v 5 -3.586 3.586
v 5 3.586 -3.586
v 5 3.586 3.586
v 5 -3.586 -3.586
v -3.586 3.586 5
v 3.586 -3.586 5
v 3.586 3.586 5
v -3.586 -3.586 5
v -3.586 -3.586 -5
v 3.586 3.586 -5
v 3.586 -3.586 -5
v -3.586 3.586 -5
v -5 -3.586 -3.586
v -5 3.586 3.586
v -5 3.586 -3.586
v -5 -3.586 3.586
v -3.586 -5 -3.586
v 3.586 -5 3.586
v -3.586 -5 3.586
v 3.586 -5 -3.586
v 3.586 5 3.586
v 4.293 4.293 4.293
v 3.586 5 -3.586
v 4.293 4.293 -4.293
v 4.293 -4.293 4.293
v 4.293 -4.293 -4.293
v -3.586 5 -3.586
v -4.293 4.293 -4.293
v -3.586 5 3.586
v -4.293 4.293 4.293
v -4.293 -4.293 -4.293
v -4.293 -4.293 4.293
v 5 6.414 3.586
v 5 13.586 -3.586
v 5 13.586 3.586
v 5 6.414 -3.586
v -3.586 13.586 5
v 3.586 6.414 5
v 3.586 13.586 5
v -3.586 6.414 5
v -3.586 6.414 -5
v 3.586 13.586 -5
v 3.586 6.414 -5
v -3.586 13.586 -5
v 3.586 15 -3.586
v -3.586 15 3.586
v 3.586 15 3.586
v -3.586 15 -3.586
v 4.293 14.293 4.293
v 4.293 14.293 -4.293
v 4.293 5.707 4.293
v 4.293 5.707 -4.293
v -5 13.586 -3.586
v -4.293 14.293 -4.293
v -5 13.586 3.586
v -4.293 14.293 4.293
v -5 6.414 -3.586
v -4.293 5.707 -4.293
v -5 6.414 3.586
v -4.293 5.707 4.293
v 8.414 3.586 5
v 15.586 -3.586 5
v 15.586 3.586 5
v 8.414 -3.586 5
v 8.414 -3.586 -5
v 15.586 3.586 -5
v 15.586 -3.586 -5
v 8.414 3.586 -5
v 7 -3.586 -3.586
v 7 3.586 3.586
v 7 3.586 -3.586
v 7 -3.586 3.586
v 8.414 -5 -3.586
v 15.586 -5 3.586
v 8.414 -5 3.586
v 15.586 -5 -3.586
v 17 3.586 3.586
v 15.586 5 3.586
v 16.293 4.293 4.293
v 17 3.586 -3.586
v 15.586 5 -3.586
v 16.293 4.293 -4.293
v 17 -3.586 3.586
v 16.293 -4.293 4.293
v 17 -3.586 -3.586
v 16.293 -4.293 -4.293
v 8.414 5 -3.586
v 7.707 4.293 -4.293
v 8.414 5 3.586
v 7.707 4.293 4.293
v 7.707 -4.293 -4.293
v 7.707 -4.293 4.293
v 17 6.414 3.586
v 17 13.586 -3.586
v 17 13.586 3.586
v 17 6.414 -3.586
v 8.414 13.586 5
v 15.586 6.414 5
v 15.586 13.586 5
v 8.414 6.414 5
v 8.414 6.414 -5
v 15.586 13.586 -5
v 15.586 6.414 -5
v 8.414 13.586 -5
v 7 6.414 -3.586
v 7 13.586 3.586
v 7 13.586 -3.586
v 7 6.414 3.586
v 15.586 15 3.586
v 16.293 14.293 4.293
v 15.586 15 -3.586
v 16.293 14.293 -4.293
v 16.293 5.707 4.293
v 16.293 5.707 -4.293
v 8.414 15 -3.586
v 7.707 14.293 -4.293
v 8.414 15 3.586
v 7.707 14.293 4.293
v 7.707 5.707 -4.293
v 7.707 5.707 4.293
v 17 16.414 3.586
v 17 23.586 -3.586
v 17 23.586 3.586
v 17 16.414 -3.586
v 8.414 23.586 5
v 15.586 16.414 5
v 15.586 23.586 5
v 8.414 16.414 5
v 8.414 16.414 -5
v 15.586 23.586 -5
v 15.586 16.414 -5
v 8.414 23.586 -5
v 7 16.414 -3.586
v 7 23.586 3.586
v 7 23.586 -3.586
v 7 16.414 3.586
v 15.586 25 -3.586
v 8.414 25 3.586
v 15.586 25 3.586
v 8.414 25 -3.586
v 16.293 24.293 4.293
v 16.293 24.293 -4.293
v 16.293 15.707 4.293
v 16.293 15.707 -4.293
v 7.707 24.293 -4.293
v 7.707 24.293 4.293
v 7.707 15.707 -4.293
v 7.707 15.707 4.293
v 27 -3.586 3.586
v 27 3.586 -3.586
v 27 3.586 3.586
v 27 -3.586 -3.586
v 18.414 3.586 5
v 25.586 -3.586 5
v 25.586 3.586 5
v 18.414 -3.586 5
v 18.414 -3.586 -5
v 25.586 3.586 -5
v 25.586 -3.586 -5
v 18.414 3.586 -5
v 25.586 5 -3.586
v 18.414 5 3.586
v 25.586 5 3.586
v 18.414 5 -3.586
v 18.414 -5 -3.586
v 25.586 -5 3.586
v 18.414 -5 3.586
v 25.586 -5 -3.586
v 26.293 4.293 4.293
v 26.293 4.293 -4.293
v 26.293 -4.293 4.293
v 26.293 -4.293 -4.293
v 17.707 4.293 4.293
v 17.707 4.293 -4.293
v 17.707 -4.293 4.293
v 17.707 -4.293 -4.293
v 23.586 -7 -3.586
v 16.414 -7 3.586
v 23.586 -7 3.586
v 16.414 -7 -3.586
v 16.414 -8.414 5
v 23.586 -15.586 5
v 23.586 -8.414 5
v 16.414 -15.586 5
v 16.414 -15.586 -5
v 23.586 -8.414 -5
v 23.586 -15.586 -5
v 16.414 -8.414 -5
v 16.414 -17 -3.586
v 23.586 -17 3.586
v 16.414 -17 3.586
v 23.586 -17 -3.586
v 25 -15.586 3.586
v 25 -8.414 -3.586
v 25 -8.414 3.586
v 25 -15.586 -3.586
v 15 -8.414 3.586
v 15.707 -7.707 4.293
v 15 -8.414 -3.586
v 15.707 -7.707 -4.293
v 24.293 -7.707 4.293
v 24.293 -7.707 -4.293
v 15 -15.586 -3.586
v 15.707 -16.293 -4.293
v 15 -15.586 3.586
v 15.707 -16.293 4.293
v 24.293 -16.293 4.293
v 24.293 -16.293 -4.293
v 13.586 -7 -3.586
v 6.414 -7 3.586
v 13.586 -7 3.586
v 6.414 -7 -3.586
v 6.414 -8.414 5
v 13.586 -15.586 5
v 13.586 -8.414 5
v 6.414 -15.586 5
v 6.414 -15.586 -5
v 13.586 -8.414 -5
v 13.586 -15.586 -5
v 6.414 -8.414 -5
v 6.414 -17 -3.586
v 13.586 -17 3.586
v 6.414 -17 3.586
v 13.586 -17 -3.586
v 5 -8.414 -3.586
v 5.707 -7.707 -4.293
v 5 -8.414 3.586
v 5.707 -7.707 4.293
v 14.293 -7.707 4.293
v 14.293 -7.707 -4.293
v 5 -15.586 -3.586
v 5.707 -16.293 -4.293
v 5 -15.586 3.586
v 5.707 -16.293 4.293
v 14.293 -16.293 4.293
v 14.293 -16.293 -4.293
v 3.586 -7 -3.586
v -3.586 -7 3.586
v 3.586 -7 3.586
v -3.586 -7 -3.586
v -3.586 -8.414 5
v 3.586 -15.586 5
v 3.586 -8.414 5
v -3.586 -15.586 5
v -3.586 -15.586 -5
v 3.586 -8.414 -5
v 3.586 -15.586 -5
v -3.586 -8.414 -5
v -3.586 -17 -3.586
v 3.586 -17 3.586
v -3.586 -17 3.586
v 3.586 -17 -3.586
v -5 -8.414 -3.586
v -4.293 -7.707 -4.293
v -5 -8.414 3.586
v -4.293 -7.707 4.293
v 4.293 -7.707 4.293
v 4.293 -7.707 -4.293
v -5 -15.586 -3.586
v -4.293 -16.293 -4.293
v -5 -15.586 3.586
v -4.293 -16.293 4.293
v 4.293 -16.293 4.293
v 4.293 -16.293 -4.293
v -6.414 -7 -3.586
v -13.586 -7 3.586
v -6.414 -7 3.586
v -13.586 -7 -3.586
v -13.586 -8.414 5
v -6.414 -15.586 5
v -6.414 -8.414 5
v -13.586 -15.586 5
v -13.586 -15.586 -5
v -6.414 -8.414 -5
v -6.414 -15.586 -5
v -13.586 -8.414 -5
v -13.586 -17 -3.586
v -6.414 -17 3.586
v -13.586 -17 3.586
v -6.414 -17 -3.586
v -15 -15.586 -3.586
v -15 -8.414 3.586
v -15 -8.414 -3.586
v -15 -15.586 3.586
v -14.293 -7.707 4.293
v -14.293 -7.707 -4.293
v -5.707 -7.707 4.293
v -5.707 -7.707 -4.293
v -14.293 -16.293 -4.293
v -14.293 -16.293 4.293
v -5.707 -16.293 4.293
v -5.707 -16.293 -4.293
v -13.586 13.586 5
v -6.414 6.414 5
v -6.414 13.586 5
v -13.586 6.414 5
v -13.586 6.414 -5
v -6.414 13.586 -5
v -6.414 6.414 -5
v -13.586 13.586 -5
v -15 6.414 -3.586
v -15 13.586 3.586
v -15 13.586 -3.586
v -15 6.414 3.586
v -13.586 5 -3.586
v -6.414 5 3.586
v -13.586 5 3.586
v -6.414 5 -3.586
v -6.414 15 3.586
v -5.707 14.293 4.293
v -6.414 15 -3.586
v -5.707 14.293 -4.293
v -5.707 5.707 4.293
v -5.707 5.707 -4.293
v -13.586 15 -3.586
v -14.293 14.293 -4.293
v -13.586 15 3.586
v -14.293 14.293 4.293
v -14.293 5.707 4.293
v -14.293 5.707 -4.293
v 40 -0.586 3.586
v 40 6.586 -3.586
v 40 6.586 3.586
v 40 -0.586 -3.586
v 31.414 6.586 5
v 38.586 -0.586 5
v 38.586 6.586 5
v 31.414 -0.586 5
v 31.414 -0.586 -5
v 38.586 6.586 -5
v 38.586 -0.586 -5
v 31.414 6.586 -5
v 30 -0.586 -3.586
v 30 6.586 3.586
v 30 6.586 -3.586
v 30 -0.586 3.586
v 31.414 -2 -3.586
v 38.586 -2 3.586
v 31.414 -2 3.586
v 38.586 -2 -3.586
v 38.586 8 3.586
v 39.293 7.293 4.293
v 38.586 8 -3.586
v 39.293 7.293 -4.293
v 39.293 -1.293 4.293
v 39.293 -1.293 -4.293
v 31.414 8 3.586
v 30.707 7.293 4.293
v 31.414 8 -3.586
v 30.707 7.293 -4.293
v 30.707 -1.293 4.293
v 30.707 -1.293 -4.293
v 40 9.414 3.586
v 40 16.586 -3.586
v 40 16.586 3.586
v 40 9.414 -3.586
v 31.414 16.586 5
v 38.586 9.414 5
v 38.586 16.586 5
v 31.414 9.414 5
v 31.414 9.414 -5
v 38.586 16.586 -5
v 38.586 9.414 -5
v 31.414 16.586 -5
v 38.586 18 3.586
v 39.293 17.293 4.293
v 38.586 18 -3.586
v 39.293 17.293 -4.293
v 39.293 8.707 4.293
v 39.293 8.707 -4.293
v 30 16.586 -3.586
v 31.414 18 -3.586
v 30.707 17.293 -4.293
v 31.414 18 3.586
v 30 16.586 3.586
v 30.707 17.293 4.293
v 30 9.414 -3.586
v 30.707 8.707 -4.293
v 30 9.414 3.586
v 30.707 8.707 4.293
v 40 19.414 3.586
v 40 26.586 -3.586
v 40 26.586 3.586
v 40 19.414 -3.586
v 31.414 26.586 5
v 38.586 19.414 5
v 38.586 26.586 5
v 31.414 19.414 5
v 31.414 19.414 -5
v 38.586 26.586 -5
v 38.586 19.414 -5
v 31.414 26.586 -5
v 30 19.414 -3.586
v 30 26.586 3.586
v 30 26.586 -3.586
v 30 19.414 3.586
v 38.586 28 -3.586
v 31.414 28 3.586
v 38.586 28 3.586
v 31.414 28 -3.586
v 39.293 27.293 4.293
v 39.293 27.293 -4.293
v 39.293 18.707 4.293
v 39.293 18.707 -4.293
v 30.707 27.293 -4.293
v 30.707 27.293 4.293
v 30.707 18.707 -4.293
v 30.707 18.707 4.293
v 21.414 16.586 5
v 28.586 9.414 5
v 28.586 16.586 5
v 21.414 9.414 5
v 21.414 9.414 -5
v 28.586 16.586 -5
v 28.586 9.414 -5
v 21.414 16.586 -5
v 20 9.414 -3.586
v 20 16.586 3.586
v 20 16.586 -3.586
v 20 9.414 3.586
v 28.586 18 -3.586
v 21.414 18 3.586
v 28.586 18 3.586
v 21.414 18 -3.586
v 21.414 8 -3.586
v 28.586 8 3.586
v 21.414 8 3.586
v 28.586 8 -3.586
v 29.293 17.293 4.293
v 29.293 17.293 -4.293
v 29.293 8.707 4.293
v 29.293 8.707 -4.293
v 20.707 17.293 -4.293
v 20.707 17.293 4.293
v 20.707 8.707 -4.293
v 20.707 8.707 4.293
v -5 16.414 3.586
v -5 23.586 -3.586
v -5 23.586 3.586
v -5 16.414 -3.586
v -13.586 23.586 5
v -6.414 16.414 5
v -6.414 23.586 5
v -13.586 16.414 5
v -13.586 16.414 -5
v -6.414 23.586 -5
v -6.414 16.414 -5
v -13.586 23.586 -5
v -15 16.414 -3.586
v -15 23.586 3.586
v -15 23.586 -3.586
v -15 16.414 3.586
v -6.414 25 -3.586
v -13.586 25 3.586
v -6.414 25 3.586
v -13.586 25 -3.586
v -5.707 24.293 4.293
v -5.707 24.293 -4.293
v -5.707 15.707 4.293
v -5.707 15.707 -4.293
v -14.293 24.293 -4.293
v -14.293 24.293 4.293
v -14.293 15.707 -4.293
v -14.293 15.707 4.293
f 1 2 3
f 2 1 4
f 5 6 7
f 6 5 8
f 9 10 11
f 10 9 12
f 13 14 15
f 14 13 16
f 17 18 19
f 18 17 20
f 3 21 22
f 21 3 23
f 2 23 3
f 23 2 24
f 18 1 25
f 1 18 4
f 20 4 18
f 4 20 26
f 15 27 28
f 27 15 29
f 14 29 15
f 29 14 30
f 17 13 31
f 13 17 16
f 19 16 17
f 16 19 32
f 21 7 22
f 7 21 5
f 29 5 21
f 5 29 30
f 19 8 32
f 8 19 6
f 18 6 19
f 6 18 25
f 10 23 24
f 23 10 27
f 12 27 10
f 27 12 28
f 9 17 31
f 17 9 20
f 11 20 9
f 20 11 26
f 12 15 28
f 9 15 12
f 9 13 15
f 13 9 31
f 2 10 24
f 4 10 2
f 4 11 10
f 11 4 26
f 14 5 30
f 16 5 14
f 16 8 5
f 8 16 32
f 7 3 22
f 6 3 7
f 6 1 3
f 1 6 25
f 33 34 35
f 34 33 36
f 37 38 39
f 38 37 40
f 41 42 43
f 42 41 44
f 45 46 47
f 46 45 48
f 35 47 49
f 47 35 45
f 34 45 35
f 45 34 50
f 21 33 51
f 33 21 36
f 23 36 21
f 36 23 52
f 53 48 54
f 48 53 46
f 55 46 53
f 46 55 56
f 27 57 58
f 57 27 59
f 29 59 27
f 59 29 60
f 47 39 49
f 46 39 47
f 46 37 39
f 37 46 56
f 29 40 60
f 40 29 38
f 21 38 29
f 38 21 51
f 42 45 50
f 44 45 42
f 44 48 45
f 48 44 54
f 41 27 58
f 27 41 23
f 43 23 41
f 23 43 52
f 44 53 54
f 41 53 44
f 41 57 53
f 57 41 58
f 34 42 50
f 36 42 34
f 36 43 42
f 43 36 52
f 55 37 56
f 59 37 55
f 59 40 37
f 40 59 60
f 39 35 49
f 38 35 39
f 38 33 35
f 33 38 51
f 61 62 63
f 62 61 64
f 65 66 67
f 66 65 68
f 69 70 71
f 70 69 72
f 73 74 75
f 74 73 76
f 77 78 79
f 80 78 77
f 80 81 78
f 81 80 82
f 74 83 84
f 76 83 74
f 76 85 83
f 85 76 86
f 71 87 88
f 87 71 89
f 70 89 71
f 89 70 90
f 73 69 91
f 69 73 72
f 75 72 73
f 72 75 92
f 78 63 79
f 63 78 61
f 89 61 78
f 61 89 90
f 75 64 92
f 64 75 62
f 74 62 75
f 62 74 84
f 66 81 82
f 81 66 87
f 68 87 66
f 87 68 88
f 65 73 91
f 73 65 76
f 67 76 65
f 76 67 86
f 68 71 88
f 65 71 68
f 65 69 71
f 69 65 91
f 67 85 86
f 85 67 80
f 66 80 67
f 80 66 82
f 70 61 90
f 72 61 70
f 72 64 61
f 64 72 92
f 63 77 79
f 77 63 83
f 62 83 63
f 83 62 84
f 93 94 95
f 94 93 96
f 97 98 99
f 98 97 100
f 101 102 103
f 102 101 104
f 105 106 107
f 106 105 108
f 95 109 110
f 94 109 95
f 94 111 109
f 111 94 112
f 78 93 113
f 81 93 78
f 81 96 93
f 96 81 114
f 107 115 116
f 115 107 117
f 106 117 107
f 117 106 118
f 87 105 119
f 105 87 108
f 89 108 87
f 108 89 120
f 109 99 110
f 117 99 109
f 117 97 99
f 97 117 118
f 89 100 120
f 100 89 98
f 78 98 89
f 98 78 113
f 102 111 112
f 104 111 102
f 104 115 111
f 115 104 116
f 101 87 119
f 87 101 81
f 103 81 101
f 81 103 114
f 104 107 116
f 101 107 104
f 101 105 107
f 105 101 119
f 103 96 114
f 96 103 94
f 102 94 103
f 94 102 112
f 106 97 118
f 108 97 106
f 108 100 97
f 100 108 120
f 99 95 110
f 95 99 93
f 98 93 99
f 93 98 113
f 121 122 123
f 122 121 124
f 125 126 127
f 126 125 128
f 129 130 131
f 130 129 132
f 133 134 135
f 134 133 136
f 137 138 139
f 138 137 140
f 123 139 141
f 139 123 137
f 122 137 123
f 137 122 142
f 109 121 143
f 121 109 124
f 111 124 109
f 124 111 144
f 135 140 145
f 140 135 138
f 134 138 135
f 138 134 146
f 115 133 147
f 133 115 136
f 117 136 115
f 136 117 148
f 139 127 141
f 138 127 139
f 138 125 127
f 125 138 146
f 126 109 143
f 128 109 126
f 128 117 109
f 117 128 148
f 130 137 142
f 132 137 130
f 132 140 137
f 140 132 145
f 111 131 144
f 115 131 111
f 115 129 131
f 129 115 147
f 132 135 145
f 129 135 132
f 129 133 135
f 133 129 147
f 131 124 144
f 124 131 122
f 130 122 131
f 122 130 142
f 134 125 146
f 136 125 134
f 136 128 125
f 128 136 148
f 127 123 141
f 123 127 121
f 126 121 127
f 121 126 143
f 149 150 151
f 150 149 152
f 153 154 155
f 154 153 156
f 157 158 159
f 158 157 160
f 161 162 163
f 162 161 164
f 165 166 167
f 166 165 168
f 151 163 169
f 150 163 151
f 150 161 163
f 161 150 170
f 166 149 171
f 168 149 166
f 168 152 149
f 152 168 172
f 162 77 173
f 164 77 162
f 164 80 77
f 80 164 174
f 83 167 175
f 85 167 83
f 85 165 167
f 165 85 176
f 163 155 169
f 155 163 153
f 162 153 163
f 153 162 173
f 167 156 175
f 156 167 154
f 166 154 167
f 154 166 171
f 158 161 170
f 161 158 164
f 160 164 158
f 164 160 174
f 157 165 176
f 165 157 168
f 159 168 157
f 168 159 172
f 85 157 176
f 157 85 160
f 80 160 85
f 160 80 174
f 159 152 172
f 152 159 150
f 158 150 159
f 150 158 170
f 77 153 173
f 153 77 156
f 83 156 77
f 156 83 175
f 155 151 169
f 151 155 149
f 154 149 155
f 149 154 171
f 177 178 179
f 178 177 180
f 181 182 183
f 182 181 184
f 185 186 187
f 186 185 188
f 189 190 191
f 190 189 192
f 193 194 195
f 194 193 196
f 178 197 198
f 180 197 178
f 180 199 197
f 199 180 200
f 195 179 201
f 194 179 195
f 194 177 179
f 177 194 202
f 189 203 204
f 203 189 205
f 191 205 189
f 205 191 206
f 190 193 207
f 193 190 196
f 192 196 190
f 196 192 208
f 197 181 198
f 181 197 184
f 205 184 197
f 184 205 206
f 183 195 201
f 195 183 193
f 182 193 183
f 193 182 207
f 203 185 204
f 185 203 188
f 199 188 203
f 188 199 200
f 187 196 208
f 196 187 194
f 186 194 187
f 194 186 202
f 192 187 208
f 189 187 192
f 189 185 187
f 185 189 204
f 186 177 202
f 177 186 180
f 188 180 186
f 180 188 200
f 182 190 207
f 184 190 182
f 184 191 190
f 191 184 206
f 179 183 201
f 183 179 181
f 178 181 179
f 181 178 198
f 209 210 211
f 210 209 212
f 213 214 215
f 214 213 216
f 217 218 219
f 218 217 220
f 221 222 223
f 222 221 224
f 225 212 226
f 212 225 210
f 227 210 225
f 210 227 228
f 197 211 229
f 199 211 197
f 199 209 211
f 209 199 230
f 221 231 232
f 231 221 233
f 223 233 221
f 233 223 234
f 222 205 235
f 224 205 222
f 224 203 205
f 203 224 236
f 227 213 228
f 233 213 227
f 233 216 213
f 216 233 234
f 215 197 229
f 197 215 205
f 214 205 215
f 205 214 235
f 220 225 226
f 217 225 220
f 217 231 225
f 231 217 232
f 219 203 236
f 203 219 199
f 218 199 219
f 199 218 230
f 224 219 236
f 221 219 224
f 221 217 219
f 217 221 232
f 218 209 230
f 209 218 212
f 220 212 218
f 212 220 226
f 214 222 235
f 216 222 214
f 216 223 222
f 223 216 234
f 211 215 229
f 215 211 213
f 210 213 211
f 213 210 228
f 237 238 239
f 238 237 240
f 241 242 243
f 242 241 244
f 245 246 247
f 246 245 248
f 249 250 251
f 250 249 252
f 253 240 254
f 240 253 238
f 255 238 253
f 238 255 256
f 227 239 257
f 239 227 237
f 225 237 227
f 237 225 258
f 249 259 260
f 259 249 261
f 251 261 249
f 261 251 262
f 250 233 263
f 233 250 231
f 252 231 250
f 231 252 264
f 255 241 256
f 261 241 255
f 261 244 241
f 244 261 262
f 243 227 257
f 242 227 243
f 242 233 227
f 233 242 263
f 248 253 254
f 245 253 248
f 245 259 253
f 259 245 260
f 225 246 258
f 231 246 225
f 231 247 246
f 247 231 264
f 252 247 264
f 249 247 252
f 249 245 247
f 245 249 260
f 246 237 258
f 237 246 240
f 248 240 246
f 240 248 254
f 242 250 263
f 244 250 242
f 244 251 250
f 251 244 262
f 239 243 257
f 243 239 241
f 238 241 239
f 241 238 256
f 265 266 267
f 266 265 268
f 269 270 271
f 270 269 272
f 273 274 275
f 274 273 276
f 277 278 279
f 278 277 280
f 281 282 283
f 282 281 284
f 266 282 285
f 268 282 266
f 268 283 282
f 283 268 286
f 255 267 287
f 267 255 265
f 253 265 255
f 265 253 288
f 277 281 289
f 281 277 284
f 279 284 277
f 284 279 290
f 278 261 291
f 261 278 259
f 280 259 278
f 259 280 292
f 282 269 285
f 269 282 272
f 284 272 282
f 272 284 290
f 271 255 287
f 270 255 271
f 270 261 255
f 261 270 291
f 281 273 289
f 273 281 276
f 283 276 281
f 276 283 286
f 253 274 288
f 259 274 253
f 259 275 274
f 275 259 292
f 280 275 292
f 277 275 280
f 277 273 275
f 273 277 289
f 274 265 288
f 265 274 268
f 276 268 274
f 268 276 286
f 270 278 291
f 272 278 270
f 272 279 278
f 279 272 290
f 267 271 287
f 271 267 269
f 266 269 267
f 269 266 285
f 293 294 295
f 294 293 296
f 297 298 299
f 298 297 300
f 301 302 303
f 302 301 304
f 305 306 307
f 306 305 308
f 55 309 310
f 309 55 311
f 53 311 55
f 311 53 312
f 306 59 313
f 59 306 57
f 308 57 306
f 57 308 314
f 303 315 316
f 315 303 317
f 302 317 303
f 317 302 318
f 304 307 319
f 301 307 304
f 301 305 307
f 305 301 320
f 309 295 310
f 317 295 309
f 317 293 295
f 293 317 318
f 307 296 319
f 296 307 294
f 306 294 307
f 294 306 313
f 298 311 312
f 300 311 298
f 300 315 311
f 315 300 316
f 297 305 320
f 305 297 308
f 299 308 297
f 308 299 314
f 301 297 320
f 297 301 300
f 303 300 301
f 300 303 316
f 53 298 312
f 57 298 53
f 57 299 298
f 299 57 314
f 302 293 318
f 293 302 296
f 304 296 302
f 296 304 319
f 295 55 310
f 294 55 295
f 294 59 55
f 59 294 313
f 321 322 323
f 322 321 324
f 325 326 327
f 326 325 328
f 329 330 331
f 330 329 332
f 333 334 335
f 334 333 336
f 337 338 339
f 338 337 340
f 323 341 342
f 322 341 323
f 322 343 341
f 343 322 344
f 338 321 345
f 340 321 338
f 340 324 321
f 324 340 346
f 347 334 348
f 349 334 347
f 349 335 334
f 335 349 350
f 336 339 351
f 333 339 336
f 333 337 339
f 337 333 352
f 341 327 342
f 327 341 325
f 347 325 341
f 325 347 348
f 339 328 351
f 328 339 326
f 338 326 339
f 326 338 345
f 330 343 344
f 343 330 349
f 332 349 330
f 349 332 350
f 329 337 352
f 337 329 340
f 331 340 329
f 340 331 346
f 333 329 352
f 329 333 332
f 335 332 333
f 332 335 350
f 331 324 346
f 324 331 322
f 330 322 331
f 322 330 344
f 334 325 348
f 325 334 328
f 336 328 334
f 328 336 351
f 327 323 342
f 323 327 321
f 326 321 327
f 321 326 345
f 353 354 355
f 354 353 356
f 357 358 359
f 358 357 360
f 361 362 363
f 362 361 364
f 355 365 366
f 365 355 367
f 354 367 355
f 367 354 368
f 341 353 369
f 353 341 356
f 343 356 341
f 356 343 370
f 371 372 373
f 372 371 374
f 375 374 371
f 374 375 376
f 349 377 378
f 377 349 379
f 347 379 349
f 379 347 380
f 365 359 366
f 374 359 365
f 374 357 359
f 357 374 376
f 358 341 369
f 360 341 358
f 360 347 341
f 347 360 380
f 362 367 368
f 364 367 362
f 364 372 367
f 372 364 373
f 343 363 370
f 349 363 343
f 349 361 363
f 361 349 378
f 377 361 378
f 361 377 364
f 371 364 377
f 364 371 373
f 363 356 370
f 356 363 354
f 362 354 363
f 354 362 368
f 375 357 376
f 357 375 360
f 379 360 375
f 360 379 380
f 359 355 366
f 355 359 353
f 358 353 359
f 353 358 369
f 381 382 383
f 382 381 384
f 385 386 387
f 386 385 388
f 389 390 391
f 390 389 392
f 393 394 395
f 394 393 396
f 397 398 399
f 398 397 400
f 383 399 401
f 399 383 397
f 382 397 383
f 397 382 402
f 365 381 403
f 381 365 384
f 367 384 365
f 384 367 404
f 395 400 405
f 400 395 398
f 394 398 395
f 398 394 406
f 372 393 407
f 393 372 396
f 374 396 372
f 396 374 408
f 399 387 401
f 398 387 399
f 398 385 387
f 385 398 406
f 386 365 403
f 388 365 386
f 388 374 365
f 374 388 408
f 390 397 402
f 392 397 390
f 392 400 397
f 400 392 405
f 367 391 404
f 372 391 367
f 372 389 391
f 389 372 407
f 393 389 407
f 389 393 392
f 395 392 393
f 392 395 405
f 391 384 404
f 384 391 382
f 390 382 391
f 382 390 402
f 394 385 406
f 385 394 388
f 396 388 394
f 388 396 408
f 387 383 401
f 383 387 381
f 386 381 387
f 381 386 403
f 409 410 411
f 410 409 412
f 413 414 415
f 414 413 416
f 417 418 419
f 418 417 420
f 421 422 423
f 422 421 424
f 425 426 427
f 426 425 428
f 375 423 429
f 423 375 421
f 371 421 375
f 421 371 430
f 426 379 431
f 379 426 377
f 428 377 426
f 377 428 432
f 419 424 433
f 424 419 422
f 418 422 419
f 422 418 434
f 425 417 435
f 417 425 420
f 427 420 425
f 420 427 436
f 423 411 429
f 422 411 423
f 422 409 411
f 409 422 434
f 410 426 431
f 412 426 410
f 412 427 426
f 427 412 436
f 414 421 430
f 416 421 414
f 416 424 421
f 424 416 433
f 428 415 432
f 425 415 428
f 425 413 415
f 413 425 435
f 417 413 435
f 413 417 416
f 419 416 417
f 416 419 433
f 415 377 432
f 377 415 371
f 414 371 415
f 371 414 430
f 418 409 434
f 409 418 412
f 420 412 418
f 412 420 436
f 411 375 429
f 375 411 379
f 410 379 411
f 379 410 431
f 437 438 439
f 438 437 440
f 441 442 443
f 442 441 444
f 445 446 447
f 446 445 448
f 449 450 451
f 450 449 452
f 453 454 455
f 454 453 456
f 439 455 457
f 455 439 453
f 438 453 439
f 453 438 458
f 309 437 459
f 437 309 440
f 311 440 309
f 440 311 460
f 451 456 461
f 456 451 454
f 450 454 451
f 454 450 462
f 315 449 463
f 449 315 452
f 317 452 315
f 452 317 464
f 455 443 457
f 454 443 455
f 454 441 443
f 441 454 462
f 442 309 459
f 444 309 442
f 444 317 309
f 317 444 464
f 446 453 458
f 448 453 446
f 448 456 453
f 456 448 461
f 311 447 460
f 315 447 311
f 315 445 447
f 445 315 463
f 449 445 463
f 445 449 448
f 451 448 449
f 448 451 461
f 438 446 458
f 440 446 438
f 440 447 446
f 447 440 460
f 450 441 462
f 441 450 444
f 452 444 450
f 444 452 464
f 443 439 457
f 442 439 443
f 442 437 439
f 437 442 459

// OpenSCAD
module bcube() {
    difference() {
        cube([10, 10, 10], center=true);
        
        translate([5,5,0]) rotate([0,0,45]) cube([2,2,11], center=true);
        
        translate([5,-5,0]) rotate([0,0,45]) cube([2,2,11], center=true);
        
        translate([-5,5,0]) rotate([0,0,45]) cube([2,2,11], center=true);
        
        translate([-5,-5,0]) rotate([0,0,45]) cube([2,2,11], center=true);
        
        translate([0,5,5]) rotate([0,90,0]) rotate([0,0,45]) cube([2,2,11], center=true);
        
        translate([0,-5,5]) rotate([0,90,0]) rotate([0,0,45]) cube([2,2,11], center=true);
        
        translate([0,5,-5]) rotate([0,90,0]) rotate([0,0,45]) cube([2,2,11], center=true);
        
        translate([0,-5,-5]) rotate([0,90,0]) rotate([0,0,45]) cube([2,2,11], center=true);
        
        translate([-5,0,-5]) rotate([90,0,0]) rotate([0,0,45]) cube([2,2,11], center=true);
        
        translate([5,0,-5]) rotate([90,0,0]) rotate([0,0,45]) cube([2,2,11], center=true);
        
        translate([-5,0,5]) rotate([90,0,0]) rotate([0,0,45]) cube([2,2,11], center=true);
        
        translate([5,0,5]) rotate([90,0,0]) rotate([0,0,45]) cube([2,2,11], center=true);
    }
}

translate([12,0,0]) {
bcube();
translate([0,10,0]) bcube();
translate([0,20,0]) bcube();
translate([10,0,0]) bcube();
}

translate([20,-12,0]) rotate([0, 0, 90]) {
bcube();
translate([0,10,0]) bcube();
translate([0,20,0]) bcube();
translate([0, 30,0]) bcube();
}

translate([35,3,0]) {
bcube();
translate([0,10,0]) bcube();
translate([-10,10,0]) bcube();
translate([0, 20,0]) bcube();
}

bcube();
translate([0,10,0]) bcube();
translate([-10,10,0]) bcube();
translate([-10, 20,0]) bcube();
